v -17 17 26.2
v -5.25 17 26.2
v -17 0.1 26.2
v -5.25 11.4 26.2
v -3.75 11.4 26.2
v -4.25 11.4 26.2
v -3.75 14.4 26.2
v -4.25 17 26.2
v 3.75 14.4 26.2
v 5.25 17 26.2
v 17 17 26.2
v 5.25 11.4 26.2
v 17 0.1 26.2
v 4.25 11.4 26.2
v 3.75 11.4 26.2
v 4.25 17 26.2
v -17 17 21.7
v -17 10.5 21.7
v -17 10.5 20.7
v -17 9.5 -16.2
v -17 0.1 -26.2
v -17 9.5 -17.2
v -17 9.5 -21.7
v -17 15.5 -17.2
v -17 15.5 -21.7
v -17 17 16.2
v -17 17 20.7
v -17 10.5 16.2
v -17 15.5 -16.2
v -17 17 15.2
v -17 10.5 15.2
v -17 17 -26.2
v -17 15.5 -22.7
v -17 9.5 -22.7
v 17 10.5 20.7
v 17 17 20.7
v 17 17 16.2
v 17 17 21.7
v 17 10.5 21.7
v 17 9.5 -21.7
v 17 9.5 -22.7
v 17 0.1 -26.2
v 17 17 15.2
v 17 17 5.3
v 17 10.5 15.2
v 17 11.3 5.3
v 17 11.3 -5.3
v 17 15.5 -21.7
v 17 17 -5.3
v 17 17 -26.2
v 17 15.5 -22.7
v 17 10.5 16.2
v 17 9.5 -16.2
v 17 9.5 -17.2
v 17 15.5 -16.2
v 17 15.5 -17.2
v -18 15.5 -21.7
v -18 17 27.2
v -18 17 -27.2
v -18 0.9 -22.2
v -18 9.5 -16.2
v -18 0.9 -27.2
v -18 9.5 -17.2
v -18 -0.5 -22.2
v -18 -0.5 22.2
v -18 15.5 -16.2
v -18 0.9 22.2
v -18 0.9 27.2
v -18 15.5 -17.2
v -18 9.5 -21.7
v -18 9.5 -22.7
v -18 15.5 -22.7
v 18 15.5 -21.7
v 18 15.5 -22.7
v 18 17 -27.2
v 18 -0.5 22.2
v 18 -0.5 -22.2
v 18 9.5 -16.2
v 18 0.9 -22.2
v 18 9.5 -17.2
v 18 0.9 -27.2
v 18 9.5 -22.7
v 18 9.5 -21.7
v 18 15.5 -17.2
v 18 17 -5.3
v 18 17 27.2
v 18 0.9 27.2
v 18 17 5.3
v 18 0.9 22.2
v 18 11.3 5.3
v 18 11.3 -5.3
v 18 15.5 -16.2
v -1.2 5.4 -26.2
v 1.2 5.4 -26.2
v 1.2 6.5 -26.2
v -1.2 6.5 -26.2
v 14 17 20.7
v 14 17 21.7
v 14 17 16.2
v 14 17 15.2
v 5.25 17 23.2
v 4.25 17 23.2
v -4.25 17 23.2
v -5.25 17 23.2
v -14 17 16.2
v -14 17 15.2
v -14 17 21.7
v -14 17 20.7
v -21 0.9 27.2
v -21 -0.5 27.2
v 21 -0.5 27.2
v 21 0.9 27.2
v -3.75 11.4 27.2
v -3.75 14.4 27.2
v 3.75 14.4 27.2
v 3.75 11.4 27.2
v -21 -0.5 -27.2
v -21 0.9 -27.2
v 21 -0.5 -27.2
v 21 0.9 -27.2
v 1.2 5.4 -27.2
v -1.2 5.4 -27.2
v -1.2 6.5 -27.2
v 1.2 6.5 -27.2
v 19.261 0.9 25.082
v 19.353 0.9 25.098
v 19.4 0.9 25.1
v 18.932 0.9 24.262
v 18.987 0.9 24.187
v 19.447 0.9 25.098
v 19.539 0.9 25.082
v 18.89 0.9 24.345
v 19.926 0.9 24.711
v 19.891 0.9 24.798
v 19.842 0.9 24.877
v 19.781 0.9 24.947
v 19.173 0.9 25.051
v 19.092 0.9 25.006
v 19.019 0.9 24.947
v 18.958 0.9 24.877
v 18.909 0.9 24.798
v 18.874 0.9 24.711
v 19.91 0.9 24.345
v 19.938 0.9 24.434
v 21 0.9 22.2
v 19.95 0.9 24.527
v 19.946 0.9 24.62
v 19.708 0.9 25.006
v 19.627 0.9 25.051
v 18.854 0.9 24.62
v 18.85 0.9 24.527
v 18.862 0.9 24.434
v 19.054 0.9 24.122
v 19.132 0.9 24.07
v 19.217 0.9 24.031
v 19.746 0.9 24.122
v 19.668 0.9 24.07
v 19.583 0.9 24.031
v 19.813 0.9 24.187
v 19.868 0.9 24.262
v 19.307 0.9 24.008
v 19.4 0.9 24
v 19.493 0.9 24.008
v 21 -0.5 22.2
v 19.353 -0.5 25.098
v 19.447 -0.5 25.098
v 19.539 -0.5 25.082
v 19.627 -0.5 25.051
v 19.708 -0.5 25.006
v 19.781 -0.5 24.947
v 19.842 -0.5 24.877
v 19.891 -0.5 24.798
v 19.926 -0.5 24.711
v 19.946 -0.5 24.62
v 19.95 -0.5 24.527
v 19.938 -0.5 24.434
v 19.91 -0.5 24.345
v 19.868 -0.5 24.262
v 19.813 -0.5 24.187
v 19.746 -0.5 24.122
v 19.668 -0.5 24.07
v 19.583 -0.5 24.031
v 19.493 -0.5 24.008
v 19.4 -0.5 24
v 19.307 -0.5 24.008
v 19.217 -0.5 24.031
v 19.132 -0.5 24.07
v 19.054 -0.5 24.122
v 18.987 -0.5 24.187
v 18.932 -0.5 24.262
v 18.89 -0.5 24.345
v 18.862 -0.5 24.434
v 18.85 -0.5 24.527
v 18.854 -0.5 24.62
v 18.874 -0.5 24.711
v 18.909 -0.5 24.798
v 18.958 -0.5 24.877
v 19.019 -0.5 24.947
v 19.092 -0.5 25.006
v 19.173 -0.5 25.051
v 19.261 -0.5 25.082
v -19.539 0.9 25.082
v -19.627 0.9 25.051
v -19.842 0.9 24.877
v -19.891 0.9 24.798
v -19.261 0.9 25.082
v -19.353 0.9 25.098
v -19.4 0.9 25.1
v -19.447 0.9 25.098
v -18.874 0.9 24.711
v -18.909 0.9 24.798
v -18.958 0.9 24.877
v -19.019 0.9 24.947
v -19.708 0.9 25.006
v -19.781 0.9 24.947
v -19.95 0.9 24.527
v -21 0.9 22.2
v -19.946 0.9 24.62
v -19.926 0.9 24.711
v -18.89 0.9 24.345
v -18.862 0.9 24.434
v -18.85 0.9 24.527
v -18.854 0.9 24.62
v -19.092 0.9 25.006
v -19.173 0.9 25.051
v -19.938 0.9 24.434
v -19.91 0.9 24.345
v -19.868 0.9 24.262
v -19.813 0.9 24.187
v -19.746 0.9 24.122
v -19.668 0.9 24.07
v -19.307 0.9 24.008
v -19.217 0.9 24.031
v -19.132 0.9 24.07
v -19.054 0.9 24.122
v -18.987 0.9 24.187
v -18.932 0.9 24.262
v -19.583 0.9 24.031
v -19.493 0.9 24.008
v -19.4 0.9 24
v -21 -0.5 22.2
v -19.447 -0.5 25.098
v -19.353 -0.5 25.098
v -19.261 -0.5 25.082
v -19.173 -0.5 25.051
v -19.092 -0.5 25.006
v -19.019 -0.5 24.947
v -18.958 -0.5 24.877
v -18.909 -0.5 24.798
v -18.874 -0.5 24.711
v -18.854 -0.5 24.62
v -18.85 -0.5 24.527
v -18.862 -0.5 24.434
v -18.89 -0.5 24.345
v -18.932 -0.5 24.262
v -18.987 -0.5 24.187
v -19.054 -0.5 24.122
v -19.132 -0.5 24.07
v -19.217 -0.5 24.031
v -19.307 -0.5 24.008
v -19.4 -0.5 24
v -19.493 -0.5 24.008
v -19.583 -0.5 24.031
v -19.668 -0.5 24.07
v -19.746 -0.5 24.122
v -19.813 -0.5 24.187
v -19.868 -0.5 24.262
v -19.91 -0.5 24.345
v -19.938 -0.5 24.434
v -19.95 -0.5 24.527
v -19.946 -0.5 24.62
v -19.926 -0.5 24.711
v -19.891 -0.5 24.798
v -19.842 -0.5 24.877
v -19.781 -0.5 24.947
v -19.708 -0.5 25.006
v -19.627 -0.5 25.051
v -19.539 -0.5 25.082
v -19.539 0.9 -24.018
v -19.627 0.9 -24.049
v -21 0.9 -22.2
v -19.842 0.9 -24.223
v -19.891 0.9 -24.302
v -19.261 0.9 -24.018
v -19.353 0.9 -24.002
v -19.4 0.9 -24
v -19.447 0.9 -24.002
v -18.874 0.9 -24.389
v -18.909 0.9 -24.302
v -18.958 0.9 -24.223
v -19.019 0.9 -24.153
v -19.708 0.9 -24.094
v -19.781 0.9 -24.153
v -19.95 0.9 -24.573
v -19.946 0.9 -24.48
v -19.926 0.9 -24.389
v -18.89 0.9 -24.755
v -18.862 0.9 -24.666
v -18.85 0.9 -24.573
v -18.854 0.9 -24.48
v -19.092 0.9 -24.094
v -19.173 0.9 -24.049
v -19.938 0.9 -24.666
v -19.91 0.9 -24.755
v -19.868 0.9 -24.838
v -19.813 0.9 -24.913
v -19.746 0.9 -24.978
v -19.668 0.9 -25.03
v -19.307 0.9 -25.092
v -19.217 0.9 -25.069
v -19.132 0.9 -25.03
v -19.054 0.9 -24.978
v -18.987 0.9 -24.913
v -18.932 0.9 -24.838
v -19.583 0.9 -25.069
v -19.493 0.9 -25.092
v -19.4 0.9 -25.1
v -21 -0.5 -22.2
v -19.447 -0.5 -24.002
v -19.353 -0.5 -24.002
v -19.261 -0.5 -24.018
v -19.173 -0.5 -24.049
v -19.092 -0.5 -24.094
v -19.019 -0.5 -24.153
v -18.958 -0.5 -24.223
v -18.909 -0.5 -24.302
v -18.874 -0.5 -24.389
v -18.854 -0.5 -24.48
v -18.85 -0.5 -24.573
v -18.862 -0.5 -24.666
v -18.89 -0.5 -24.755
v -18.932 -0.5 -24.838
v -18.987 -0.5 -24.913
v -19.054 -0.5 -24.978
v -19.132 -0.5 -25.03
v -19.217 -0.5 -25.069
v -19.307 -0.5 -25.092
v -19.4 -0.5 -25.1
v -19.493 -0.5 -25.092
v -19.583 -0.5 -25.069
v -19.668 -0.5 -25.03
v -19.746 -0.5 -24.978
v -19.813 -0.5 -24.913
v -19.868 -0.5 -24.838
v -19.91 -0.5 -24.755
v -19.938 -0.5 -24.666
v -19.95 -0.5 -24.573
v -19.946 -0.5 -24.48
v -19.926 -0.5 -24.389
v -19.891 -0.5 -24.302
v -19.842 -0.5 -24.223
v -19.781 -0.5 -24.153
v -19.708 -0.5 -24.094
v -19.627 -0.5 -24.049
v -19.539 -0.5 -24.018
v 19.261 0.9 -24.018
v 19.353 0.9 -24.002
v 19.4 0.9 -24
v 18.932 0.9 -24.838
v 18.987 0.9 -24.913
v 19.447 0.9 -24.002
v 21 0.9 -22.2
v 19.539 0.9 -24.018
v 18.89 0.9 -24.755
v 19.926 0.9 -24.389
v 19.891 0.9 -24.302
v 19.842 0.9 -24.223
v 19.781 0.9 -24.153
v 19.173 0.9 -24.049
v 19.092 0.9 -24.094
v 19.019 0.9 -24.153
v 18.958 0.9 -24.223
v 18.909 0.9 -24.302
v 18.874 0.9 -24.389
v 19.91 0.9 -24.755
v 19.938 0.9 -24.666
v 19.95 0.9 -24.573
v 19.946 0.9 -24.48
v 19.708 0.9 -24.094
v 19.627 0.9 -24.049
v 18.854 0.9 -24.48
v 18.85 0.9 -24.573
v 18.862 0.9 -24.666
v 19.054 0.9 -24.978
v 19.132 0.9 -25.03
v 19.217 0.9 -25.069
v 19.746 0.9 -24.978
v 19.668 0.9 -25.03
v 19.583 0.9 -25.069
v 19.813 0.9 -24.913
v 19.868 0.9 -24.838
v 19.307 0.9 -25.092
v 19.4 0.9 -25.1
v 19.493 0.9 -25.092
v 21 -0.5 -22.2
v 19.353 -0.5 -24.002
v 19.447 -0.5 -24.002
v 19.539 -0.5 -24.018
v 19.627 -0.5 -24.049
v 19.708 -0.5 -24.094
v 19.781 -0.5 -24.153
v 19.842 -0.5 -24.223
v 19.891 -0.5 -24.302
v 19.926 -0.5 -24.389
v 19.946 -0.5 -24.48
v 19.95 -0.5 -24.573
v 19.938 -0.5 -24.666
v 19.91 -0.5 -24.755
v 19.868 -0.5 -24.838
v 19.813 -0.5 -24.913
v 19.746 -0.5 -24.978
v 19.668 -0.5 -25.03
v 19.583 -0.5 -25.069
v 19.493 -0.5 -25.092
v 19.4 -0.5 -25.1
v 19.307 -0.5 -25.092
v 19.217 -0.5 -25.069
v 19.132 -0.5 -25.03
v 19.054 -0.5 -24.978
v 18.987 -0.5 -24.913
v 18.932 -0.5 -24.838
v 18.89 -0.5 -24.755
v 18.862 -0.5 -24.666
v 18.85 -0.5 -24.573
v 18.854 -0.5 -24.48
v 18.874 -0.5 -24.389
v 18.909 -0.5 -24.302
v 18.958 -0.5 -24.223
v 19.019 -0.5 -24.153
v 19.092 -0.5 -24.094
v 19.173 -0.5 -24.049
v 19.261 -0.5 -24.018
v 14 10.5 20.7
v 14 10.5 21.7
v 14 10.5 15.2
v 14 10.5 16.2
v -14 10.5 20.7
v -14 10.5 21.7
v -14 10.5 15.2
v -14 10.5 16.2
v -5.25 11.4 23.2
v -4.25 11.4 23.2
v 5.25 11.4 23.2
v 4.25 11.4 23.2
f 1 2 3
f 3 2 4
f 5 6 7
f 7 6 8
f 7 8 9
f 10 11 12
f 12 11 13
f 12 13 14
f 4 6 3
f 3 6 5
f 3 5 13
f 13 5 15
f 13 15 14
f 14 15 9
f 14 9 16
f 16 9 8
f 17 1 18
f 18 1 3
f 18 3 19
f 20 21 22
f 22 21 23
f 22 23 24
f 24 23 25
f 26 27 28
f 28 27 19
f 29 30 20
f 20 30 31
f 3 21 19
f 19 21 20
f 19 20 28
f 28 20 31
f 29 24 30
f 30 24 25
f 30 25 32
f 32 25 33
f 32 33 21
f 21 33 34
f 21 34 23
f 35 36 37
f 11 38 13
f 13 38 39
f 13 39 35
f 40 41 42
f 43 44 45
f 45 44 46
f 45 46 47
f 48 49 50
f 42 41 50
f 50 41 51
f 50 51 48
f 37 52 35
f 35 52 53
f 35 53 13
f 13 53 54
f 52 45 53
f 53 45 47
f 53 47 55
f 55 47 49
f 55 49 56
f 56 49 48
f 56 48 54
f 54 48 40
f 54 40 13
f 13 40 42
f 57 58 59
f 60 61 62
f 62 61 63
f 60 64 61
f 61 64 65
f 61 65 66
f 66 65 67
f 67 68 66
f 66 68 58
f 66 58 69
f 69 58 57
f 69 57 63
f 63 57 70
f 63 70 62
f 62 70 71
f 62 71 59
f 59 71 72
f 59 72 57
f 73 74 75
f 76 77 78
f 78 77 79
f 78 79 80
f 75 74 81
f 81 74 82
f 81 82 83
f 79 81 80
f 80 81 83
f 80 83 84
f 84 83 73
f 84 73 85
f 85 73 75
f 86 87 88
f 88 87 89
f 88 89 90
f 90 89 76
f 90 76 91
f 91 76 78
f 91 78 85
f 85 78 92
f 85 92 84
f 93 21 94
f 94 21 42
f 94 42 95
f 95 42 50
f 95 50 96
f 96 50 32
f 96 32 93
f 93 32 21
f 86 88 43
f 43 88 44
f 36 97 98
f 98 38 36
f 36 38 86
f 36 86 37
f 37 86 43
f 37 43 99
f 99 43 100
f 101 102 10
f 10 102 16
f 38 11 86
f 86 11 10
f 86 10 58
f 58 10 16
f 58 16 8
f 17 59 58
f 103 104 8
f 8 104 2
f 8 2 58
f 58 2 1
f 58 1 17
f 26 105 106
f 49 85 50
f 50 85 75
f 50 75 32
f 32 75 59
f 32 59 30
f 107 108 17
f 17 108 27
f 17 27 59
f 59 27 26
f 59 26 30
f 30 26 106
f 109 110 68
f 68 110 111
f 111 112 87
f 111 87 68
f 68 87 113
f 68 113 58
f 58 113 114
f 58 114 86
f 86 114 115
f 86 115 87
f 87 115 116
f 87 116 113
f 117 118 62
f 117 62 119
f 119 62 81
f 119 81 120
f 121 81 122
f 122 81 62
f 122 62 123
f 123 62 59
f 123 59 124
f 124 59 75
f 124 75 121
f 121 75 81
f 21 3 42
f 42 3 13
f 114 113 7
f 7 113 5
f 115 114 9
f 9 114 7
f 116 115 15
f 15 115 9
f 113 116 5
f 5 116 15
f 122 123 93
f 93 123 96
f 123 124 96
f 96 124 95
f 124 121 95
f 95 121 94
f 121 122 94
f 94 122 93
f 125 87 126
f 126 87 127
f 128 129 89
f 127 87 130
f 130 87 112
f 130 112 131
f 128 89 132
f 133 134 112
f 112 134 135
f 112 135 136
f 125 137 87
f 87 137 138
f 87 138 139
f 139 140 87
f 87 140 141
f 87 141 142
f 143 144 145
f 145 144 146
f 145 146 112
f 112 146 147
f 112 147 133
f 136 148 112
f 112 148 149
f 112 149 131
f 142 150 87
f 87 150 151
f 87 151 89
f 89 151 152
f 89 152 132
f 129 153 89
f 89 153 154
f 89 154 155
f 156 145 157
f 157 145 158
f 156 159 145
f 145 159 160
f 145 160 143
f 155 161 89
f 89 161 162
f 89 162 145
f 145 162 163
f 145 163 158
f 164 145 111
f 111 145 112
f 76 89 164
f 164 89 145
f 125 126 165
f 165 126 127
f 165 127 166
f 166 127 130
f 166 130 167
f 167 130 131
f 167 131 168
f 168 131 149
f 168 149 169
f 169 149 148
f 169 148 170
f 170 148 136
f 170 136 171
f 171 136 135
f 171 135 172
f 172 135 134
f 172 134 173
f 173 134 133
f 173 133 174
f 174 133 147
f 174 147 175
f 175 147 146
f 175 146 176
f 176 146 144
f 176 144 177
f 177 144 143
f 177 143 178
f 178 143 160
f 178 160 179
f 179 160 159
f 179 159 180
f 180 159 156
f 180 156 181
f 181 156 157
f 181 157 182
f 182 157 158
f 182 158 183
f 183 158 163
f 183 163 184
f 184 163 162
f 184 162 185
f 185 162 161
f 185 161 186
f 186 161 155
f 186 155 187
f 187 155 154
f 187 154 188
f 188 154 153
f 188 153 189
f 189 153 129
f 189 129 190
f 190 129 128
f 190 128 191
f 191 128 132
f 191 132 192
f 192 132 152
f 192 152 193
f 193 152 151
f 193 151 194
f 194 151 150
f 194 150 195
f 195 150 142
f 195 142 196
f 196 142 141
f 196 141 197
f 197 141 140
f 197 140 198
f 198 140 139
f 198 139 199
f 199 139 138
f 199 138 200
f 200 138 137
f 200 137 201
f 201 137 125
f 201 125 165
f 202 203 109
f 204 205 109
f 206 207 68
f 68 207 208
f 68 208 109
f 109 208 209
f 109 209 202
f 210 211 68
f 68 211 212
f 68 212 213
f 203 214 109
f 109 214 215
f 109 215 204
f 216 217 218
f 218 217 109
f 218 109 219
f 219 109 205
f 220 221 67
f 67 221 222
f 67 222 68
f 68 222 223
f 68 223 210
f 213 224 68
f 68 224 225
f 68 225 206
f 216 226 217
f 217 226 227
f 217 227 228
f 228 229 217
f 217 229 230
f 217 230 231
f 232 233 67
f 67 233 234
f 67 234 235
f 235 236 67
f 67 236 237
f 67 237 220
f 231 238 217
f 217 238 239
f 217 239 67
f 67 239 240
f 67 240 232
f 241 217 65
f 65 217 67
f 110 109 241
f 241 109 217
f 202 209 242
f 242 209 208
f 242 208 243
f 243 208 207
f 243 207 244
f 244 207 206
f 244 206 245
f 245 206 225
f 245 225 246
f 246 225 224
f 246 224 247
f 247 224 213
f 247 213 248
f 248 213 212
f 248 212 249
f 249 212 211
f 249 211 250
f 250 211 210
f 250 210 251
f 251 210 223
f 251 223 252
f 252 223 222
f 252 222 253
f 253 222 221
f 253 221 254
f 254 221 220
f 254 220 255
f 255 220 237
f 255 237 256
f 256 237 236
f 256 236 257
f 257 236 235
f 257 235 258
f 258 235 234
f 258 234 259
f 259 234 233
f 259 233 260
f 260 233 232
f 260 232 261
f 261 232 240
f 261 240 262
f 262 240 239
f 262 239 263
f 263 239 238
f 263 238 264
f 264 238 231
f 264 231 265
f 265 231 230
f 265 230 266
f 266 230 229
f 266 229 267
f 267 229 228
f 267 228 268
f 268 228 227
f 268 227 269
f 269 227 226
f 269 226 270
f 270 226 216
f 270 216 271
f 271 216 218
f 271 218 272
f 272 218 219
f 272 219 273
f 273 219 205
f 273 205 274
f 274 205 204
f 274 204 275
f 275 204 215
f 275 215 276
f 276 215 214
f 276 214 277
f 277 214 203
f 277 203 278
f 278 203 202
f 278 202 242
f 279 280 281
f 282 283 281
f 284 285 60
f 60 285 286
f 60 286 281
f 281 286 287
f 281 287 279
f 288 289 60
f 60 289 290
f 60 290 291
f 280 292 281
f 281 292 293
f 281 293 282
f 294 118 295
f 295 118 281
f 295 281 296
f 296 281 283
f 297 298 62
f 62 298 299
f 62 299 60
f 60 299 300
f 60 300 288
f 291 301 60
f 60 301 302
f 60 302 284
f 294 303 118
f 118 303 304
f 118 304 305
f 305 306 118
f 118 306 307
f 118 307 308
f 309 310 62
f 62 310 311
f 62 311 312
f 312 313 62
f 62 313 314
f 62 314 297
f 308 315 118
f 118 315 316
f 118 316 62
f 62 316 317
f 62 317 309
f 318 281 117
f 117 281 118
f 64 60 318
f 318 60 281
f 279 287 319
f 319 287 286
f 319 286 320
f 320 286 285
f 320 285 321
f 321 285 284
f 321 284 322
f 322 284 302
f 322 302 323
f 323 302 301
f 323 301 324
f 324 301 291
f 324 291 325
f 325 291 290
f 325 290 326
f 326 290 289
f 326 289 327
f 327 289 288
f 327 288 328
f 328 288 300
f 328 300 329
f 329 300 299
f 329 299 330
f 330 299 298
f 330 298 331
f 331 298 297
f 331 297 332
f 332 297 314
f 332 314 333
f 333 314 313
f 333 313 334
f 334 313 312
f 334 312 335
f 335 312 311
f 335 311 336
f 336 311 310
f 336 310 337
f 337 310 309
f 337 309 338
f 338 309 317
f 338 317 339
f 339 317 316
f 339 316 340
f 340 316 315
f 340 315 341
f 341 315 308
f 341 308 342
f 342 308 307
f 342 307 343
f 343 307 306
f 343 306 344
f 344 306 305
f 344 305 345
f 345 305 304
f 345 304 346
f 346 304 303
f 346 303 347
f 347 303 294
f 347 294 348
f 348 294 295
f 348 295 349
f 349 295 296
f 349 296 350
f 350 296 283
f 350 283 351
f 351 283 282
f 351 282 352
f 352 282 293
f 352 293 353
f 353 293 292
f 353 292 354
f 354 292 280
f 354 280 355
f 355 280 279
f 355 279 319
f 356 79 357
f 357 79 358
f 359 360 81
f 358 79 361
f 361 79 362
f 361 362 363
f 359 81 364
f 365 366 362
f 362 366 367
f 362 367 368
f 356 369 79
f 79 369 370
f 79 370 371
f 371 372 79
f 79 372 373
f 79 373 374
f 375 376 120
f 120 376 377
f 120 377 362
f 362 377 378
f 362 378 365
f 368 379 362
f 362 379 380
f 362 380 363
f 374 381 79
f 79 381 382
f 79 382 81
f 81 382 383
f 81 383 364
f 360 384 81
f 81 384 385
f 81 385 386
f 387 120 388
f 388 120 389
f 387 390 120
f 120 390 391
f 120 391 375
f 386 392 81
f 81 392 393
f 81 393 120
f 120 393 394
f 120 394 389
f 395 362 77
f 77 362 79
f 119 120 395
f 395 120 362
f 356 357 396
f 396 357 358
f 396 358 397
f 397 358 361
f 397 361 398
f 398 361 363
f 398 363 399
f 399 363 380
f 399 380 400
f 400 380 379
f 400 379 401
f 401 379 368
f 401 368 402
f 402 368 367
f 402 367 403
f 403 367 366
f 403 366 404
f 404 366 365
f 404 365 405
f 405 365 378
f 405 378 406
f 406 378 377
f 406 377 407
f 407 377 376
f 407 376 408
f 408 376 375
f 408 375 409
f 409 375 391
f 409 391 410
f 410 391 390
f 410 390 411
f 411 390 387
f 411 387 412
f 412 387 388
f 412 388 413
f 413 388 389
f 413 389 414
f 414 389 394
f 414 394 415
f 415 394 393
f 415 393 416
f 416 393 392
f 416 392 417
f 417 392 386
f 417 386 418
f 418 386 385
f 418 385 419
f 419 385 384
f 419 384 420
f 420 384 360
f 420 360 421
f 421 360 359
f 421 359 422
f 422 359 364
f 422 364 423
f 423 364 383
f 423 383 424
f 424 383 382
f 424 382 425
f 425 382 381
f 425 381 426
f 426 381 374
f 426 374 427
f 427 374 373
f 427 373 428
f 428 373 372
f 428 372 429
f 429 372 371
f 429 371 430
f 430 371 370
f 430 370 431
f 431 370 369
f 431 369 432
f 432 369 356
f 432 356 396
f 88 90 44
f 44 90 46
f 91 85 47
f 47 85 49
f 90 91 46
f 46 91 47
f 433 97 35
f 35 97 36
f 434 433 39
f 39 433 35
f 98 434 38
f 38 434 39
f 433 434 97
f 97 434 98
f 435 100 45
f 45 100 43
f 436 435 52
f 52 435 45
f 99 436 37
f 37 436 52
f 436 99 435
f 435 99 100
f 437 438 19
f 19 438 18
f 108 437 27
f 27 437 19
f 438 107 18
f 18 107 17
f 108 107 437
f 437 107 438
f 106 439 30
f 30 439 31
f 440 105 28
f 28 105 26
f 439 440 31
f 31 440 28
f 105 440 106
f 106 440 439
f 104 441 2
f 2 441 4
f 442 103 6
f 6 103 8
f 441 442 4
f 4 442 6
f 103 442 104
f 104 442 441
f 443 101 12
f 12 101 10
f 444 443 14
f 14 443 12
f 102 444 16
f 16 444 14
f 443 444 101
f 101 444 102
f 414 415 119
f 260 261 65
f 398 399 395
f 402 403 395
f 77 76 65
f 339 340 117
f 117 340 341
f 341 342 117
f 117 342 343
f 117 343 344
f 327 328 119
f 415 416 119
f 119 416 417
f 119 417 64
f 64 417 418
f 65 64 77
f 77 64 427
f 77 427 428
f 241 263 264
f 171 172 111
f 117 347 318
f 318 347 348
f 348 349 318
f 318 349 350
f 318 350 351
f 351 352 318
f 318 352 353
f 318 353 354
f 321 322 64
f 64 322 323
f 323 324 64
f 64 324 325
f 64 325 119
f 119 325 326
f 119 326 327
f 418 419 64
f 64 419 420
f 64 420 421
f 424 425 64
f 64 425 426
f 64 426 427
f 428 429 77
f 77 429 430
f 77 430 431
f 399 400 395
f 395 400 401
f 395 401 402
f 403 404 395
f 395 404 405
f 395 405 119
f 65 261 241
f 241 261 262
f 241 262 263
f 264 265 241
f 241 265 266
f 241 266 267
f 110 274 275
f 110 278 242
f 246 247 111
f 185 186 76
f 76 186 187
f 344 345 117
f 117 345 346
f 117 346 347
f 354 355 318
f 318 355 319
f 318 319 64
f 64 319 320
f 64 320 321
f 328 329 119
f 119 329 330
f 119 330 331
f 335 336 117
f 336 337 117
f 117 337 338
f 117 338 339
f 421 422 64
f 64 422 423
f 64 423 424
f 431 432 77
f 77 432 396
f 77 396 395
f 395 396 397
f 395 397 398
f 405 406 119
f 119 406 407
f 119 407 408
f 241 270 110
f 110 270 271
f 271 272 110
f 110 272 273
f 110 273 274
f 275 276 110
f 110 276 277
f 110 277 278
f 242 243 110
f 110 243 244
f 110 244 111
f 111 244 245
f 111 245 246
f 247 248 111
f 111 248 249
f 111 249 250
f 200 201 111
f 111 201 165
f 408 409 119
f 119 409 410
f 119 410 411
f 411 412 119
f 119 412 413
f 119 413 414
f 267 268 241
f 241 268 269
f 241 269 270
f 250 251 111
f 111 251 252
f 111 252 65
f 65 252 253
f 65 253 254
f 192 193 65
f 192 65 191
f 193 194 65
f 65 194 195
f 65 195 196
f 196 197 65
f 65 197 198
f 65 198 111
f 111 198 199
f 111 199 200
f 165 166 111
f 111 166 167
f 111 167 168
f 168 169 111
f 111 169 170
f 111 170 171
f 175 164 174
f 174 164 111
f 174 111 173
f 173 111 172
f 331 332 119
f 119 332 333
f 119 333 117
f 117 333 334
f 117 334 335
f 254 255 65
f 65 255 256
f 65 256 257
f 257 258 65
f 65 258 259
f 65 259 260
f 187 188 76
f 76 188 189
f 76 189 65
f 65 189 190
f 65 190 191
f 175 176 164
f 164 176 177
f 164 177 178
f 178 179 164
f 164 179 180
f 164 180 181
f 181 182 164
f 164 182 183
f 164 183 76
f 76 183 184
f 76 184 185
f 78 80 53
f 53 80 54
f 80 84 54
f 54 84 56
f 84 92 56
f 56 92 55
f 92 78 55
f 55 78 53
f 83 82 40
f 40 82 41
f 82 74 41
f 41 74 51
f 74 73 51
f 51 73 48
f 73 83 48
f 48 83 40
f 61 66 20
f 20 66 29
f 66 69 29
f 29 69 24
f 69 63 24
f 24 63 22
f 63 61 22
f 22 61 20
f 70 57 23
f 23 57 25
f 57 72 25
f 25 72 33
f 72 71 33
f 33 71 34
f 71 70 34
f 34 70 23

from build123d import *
from build123d.topology import SkipClean

# Parameters (mm, degrees)
ESBO_O1_W                = 36
ESBO_O1_H                = 54.4
ESBO_O1_W_2              = 34
ESBO_O1_H_2              = 52.4
RESSALTO_EXTRUS_O1_DEPTH = 17
ESBO_O2_W                = 34
ESBO_O2_H                = 52.4
RESSALTO_EXTRUS_O2_DEPTH = 0.1
ESBO_O3_W                = 7.5
ESBO_O3_H                = 3
CORTE_EXTRUS_O1_DEPTH    = 5.5
ESBO_O4_W                = 2.4
ESBO_O4_H                = 1.1
CORTE_EXTRUS_O2_DEPTH    = 5.5
ESBO_O5_W                = 3
ESBO_O5_H                = 5
ESBO_O5_R                = 0.55
RESSALTO_EXTRUS_O3_DEPTH = 0.9
ESBO_O7_W                = 10.6
ESBO_O7_H                = 5.7
CORTE_EXTRUS_O3_DEPTH    = 3
ESBO_O8_W                = 1
ESBO_O8_H                = 6.5
RESSALTO_EXTRUS_O4_DEPTH = 3
ESBO_O9_W                = 1
ESBO_O9_H                = 6.5
RESSALTO_EXTRUS_O5_DEPTH = 3
ESBO_O10_W               = 1
ESBO_O10_H               = 5.6
RESSALTO_EXTRUS_O6_DEPTH = 3
RESSALTO_EXTRUS_O7_START = 0.5
ESBO_O11_R               = 0.55
RESSALTO_EXTRUS_O7_DEPTH = 0.5
ESBO_O12_W               = 1
ESBO_O12_H               = 6
CORTE_EXTRUS_O4_DEPTH    = 40


with BuildPart() as part:
    # Esboço1 → Ressalto-extrusão1 (new body)
    with BuildSketch(Plane(origin=(0, 0, 0), x_dir=(1, 0, 0), z_dir=(0, 1, 0))):
        Rectangle(ESBO_O1_W, ESBO_O1_H)
        Rectangle(ESBO_O1_W_2, ESBO_O1_H_2, mode=Mode.SUBTRACT)
    extrude(amount=RESSALTO_EXTRUS_O1_DEPTH)

    # Esboço2 → Ressalto-extrusão2 (add)
    with BuildSketch(Plane(origin=(0, 0, 0), x_dir=(1, 0, 0), z_dir=(0, 1, 0))):
        Rectangle(ESBO_O2_W, ESBO_O2_H)
    extrude(amount=RESSALTO_EXTRUS_O2_DEPTH)

    # Esboço3 → Corte-extrusão1 (cut, symmetric)
    with BuildSketch(Plane.XY.offset(27.2)):
        with Locations((0, 12.9)):
            Rectangle(ESBO_O3_W, ESBO_O3_H)
    extrude(amount=CORTE_EXTRUS_O1_DEPTH, both=True, mode=Mode.SUBTRACT)

    # Esboço4 → Corte-extrusão2 (cut, symmetric)
    with BuildSketch(Plane.XY.offset(-26.2)):
        with Locations((0, 5.95)):
            Rectangle(ESBO_O4_W, ESBO_O4_H)
    extrude(amount=CORTE_EXTRUS_O2_DEPTH, both=True, mode=Mode.SUBTRACT)

    # Esboço5 → Ressalto-extrusão3 (add)
    # profile 1 of 4: a face of its own
    with BuildSketch(Plane(origin=(0, 0, 0), x_dir=(1, 0, 0), z_dir=(0, 1, 0))):
        with Locations((19.5, -24.7)):
            Rectangle(ESBO_O5_W, ESBO_O5_H)
        with Locations(Location((19.4, -24.55, 0), (0, 0, 270))):
            Circle(ESBO_O5_R, mode=Mode.SUBTRACT)
    # profile 2 of 4: a face of its own
    with BuildSketch(Plane(origin=(0, 0, 0), x_dir=(1, 0, 0), z_dir=(0, 1, 0))):
        with Locations((-19.5, -24.7)):
            Rectangle(ESBO_O5_W, ESBO_O5_H)
        with Locations(Location((-19.4, -24.55, 0), (0, 0, 270))):
            Circle(ESBO_O5_R, mode=Mode.SUBTRACT)
    # profile 3 of 4: a face of its own
    with BuildSketch(Plane(origin=(0, 0, 0), x_dir=(1, 0, 0), z_dir=(0, 1, 0))):
        with Locations((-19.5, 24.7)):
            Rectangle(ESBO_O5_W, ESBO_O5_H)
        with Locations(Location((-19.4, 24.55, 0), (0, 0, 270))):
            Circle(ESBO_O5_R, mode=Mode.SUBTRACT)
    # profile 4 of 4: a face of its own
    with BuildSketch(Plane(origin=(0, 0, 0), x_dir=(1, 0, 0), z_dir=(0, 1, 0))):
        with Locations((19.5, 24.7)):
            Rectangle(ESBO_O5_W, ESBO_O5_H)
        with Locations(Location((19.4, 24.55, 0), (0, 0, 270))):
            Circle(ESBO_O5_R, mode=Mode.SUBTRACT)
    extrude(amount=RESSALTO_EXTRUS_O3_DEPTH)

    # Esboço7 → Corte-extrusão3 (cut)
    with BuildSketch(Plane(origin=(18, 0, 0), x_dir=(0, 0, -1), z_dir=(1, 0, 0))):
        with Locations((0, 14.15)):
            Rectangle(ESBO_O7_W, ESBO_O7_H)
    extrude(amount=-CORTE_EXTRUS_O3_DEPTH, mode=Mode.SUBTRACT)

    # Esboço8 → Ressalto-extrusão4 (add)
    with BuildSketch(Plane.ZY.offset(-17)):
        with Locations((15.7, 13.75)):
            Rectangle(ESBO_O8_W, ESBO_O8_H)
        with Locations((21.2, 13.75)):
            Rectangle(ESBO_O8_W, ESBO_O8_H)
    extrude(amount=RESSALTO_EXTRUS_O4_DEPTH)

    # Esboço9 → Ressalto-extrusão5 (add)
    with BuildSketch(Plane(origin=(-17, 0, 0), x_dir=(0, 0, -1), z_dir=(1, 0, 0))):
        with Locations((-21.2, 13.75)):
            Rectangle(ESBO_O9_W, ESBO_O9_H)
        with Locations((-15.7, 13.75)):
            Rectangle(ESBO_O9_W, ESBO_O9_H)
    extrude(amount=RESSALTO_EXTRUS_O5_DEPTH)

    # Esboço10 → Ressalto-extrusão6 (add)
    with BuildSketch(Plane(origin=(0, 0, 26.2), x_dir=(-1, 0, 0), z_dir=(0, 0, -1))):
        with Locations((4.75, 14.2)):
            Rectangle(ESBO_O10_W, ESBO_O10_H)
        with Locations((-4.75, 14.2)):
            Rectangle(ESBO_O10_W, ESBO_O10_H)
    extrude(amount=RESSALTO_EXTRUS_O6_DEPTH)

    # Esboço11 → Ressalto-extrusão7 (add)
    with SkipClean():  # the faces are left unmerged after this step: merging them gives an invalid solid
        with BuildSketch(Plane.XZ.offset(RESSALTO_EXTRUS_O7_START)):
            Polygon((-18, 22.2), (-18, -22.2), (-21, -22.2), (-21, -27.2), (21, -27.2), (21, -22.2), (18, -22.2), (18, 22.2), (21, 22.2), (21, 27.2), (-21, 27.2), (-21, 22.2), align=None)
            with Locations(Location((19.4, -24.55, 0), (0, 0, 270))):
                Circle(ESBO_O11_R, mode=Mode.SUBTRACT)
            with Locations(Location((19.4, 24.55, 0), (0, 0, 270))):
                Circle(ESBO_O11_R, mode=Mode.SUBTRACT)
            with Locations(Location((-19.4, 24.55, 0), (0, 0, 270))):
                Circle(ESBO_O11_R, mode=Mode.SUBTRACT)
            with Locations(Location((-19.4, -24.55, 0), (0, 0, 270))):
                Circle(ESBO_O11_R, mode=Mode.SUBTRACT)
        extrude(amount=-RESSALTO_EXTRUS_O7_DEPTH)

    # Esboço12 → Corte-extrusão4 (cut)
    with SkipClean():  # the faces are left unmerged after this step: merging them gives an invalid solid
        with BuildSketch(Plane(origin=(18, 0, 0), x_dir=(0, 0, -1), z_dir=(1, 0, 0))):
            with Locations((22.2, 12.5)):
                Rectangle(ESBO_O12_W, ESBO_O12_H)
            with Locations((16.7, 12.5)):
                Rectangle(ESBO_O12_W, ESBO_O12_H)
        extrude(amount=-CORTE_EXTRUS_O4_DEPTH, mode=Mode.SUBTRACT)


solid = part.part
